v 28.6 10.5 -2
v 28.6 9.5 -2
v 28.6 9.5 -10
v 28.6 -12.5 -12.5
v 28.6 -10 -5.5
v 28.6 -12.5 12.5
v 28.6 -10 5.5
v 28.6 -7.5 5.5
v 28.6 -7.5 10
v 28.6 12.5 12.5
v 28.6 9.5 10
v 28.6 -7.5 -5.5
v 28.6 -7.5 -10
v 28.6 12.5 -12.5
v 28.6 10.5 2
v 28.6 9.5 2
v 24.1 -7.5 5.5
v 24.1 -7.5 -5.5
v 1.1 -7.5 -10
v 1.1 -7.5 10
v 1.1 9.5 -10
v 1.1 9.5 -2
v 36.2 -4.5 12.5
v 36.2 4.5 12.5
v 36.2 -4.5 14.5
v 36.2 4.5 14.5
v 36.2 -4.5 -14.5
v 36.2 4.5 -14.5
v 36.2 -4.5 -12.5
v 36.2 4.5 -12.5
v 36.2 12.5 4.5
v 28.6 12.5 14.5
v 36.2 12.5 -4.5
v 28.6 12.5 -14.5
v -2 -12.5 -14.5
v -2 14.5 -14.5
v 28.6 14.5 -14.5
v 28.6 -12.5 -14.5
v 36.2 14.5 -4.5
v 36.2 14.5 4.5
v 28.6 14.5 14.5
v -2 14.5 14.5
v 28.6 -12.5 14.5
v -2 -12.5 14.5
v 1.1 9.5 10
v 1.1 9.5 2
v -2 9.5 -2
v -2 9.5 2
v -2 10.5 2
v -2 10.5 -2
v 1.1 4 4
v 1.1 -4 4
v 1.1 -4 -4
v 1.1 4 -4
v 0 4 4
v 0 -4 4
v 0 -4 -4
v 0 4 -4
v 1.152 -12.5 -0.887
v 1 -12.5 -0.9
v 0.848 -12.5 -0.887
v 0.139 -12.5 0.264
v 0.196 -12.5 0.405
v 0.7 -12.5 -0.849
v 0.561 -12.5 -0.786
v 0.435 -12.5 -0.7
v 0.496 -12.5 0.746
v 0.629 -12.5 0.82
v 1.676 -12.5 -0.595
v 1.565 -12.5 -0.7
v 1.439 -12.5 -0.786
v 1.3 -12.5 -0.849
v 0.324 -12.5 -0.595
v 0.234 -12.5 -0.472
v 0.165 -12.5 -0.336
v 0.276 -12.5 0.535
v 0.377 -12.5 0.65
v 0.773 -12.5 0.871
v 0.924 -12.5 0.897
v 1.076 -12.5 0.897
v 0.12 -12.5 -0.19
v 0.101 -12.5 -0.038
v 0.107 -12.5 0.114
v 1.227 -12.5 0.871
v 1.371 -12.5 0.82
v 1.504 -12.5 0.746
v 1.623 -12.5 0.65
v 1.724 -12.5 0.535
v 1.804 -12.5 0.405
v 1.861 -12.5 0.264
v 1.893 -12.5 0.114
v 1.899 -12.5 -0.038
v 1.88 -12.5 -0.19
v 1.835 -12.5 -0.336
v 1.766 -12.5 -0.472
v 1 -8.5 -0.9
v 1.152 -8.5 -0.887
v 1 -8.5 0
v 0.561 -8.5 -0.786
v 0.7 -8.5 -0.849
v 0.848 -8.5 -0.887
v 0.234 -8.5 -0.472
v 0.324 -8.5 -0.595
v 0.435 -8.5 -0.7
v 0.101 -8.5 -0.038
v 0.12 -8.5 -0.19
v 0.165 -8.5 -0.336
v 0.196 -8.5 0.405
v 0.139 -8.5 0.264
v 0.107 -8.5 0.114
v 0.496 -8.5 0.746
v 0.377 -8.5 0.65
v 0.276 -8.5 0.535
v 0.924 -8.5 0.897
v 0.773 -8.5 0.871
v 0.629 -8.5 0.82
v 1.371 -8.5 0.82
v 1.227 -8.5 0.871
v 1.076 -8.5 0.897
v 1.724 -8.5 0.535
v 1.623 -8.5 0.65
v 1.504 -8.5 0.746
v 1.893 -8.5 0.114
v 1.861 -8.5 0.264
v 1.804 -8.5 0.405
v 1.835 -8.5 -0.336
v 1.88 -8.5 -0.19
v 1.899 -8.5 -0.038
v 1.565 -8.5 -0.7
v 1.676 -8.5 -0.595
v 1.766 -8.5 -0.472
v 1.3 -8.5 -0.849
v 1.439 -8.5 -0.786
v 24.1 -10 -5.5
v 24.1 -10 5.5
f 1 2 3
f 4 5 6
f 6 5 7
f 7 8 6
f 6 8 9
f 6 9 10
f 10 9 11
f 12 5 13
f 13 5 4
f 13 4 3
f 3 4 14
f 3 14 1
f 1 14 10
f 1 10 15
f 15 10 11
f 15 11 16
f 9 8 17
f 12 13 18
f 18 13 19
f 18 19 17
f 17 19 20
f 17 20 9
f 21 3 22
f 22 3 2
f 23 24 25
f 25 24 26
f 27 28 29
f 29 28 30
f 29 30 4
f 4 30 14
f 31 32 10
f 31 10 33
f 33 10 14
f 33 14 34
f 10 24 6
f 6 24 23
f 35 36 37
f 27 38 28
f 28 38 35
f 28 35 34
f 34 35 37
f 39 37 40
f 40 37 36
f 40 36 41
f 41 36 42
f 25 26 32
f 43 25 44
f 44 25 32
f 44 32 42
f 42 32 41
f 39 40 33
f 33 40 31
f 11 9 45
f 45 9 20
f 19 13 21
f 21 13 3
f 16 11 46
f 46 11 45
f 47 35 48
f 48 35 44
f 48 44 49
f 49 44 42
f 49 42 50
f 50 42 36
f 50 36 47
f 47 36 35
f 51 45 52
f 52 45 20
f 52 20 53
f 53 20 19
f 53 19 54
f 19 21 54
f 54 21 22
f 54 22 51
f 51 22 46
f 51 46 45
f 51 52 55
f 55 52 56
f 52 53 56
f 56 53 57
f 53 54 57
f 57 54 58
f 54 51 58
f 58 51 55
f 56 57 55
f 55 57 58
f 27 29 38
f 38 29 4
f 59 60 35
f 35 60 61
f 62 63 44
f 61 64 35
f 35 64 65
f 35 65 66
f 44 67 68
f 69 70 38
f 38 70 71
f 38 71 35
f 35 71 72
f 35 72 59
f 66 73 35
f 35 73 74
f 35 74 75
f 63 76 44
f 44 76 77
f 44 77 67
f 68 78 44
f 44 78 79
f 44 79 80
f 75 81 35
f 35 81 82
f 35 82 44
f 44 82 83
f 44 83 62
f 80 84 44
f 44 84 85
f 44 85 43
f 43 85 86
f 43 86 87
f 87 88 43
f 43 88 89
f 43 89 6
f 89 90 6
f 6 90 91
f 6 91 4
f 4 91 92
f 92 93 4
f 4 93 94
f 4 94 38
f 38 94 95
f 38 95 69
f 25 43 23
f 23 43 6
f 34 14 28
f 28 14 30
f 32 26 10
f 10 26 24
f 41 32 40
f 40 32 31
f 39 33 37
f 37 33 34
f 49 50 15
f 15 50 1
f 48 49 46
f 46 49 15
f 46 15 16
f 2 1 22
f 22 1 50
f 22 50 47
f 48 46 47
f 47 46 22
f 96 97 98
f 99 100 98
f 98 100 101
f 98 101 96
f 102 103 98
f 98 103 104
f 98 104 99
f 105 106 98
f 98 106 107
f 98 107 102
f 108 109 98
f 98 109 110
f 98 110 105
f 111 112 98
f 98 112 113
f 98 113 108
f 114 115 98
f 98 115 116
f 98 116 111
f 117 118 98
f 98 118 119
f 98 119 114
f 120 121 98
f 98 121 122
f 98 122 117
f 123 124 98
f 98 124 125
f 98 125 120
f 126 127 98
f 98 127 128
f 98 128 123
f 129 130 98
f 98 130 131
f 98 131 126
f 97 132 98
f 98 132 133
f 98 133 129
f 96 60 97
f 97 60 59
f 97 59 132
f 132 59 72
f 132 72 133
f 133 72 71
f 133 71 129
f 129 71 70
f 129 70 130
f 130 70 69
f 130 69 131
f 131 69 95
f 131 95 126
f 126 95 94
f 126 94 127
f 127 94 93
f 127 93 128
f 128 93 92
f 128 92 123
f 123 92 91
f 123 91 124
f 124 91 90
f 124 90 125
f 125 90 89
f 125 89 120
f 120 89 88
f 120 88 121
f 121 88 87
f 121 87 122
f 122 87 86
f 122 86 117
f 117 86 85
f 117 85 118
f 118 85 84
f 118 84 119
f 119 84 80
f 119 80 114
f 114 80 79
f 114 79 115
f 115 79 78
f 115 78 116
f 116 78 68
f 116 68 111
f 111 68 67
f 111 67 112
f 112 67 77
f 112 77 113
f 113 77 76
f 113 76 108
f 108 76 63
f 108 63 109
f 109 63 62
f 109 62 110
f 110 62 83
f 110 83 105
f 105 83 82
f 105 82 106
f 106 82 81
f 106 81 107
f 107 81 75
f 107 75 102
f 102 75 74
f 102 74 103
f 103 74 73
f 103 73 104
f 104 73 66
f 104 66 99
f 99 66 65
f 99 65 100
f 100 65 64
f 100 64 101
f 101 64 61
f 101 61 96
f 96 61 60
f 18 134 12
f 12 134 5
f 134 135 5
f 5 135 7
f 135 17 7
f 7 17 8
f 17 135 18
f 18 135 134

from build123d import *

# Parameters (mm, degrees)
SKETCH_1_W               = 29
SKETCH_1_H               = 29
SKETCH_1_W_2             = 25
SKETCH_1_H_2             = 25
EXTRUDE_1_DEPTH          = 36.2
SKETCH_1_3_W             = 25
SKETCH_1_3_H             = 25
SKETCH_1_3_W_2           = 20
SKETCH_1_3_H_2           = 17
EXTRUDE_2_DEPTH          = 28.6
SKETCH_1_4_W             = 29
SKETCH_1_4_H             = 29
EXTRUDE_3_DEPTH          = 2
SKETCH_1_5_W             = 20
SKETCH_1_5_H             = 17
SKETCH_1_5_W_2           = 8
SKETCH_1_5_H_2           = 8
EXTRUDE_4_DEPTH          = 1.1
CUT_EXTRUDE_1_DEPTH      = 49.597222143
CUT_EXTRUDE_2_REACH      = 49.431
CUT_EXTRUDE_3_DEPTH      = 2
CUT_EXTRUDE_3_DEPTH_BACK = 2
CUT_EXTRUDE_3_START      = -14.5
SKETCH_7_W               = 50
SKETCH_7_H               = 1
HOLE_WIZARD_1_D          = 1.8
HOLE_WIZARD_1_DEPTH      = 4
CUT_EXTRUDE_4_DEPTH      = 4.5


with BuildPart() as part:
    # 草图1 → 凸台-拉伸1 (new body)
    with BuildSketch(Plane(origin=(0, 0, 0), x_dir=(0, 0, -1), z_dir=(1, 0, 0))):
        Rectangle(SKETCH_1_W, SKETCH_1_H)
        Rectangle(SKETCH_1_W_2, SKETCH_1_H_2, mode=Mode.SUBTRACT)
    extrude(amount=EXTRUDE_1_DEPTH)

    # 草图1<3> → 凸台-拉伸2 (add)
    with BuildSketch(Plane(origin=(0, 0, 0), x_dir=(0, 0, -1), z_dir=(1, 0, 0))):
        Rectangle(SKETCH_1_3_W, SKETCH_1_3_H)
        with Locations((0, 1)):
            Rectangle(SKETCH_1_3_W_2, SKETCH_1_3_H_2, mode=Mode.SUBTRACT)
    extrude(amount=EXTRUDE_2_DEPTH)

    # 草图1<4> → 凸台-拉伸3 (add)
    with BuildSketch(Plane(origin=(0, 0, 0), x_dir=(0, 0, -1), z_dir=(1, 0, 0))):
        Rectangle(SKETCH_1_4_W, SKETCH_1_4_H)
    extrude(amount=-EXTRUDE_3_DEPTH)

    # 草图1<5> → 凸台-拉伸4 (add)
    with BuildSketch(Plane(origin=(0, 0, 0), x_dir=(0, 0, -1), z_dir=(1, 0, 0))):
        with Locations((0, 1)):
            Rectangle(SKETCH_1_5_W, SKETCH_1_5_H)
        Rectangle(SKETCH_1_5_W_2, SKETCH_1_5_H_2, mode=Mode.SUBTRACT)
    extrude(amount=EXTRUDE_4_DEPTH)

    # 草图4 → 切除-拉伸1 (cut, through all)
    with BuildSketch(Plane.XY.offset(14.5)):
        Polygon((-2, -12.5), (28.6, -12.5), (36.2, -4.5), (36.2, -14.5), (-2, -14.5), align=None)
        Polygon((36.2, 12.5), (28.6, 12.5), (36.2, 4.5), align=None)
    extrude(amount=-CUT_EXTRUDE_1_DEPTH, mode=Mode.SUBTRACT)

    # 草图6 → 切除-拉伸2 (cut, up to next)
    with BuildSketch(Plane(origin=(0, 14.5, 0), x_dir=(1, 0, 0), z_dir=(0, 1, 0)), mode=Mode.PRIVATE) as cut_extrude_2_sk1:
        Polygon((28.6, 14.5), (36.2, 14.5), (36.2, 4.5), align=None)
    cut_extrude_2_tool1 = extrude(cut_extrude_2_sk1.sketch, amount=-CUT_EXTRUDE_2_REACH, mode=Mode.PRIVATE) & part.part
    # 草图6 → 切除-拉伸2 (cut, up to next)
    with BuildSketch(Plane(origin=(0, 14.5, 0), x_dir=(1, 0, 0), z_dir=(0, 1, 0)), mode=Mode.PRIVATE) as cut_extrude_2_sk2:
        Polygon((36.2, -14.5), (36.2, -4.5), (28.6, -14.5), align=None)
    cut_extrude_2_tool2 = extrude(cut_extrude_2_sk2.sketch, amount=-CUT_EXTRUDE_2_REACH, mode=Mode.PRIVATE) & part.part
    add(cut_extrude_2_tool1.solids().sort_by_distance((33.666667, 14.5, -11.166667))[0], mode=Mode.SUBTRACT)
    add(cut_extrude_2_tool2.solids().sort_by_distance((33.666667, 14.5, 11.166667))[0], mode=Mode.SUBTRACT)

    # 草图7 → 切除-拉伸3 (cut, two sides: drawn at the far end of the back side and taken through both)
    with BuildSketch(Plane.XY.offset(14.5).offset(CUT_EXTRUDE_3_START - CUT_EXTRUDE_3_DEPTH_BACK)):
        with Locations((23, 10)):
            Rectangle(SKETCH_7_W, SKETCH_7_H)
    extrude(amount=CUT_EXTRUDE_3_DEPTH + CUT_EXTRUDE_3_DEPTH_BACK, mode=Mode.SUBTRACT)

    # 孔1
    with Locations(Plane(origin=(0, -12.5, 0), x_dir=(-1, 0, 0), z_dir=(0, -1, 0))):
        with Locations((-1, 0)):
            Hole(HOLE_WIZARD_1_D / 2, depth=HOLE_WIZARD_1_DEPTH)

    # 草图11 → 切除-拉伸4 (cut)
    with BuildSketch(Plane(origin=(28.6, 0, 0), x_dir=(0, 0, -1), z_dir=(1, 0, 0))):
        Polygon((0, -7.5), (-5.5, -7.5), (-5.5, -10), (5.5, -10), (5.5, -7.5), align=None)
    extrude(amount=-CUT_EXTRUDE_4_DEPTH, mode=Mode.SUBTRACT)


solid = part.part
